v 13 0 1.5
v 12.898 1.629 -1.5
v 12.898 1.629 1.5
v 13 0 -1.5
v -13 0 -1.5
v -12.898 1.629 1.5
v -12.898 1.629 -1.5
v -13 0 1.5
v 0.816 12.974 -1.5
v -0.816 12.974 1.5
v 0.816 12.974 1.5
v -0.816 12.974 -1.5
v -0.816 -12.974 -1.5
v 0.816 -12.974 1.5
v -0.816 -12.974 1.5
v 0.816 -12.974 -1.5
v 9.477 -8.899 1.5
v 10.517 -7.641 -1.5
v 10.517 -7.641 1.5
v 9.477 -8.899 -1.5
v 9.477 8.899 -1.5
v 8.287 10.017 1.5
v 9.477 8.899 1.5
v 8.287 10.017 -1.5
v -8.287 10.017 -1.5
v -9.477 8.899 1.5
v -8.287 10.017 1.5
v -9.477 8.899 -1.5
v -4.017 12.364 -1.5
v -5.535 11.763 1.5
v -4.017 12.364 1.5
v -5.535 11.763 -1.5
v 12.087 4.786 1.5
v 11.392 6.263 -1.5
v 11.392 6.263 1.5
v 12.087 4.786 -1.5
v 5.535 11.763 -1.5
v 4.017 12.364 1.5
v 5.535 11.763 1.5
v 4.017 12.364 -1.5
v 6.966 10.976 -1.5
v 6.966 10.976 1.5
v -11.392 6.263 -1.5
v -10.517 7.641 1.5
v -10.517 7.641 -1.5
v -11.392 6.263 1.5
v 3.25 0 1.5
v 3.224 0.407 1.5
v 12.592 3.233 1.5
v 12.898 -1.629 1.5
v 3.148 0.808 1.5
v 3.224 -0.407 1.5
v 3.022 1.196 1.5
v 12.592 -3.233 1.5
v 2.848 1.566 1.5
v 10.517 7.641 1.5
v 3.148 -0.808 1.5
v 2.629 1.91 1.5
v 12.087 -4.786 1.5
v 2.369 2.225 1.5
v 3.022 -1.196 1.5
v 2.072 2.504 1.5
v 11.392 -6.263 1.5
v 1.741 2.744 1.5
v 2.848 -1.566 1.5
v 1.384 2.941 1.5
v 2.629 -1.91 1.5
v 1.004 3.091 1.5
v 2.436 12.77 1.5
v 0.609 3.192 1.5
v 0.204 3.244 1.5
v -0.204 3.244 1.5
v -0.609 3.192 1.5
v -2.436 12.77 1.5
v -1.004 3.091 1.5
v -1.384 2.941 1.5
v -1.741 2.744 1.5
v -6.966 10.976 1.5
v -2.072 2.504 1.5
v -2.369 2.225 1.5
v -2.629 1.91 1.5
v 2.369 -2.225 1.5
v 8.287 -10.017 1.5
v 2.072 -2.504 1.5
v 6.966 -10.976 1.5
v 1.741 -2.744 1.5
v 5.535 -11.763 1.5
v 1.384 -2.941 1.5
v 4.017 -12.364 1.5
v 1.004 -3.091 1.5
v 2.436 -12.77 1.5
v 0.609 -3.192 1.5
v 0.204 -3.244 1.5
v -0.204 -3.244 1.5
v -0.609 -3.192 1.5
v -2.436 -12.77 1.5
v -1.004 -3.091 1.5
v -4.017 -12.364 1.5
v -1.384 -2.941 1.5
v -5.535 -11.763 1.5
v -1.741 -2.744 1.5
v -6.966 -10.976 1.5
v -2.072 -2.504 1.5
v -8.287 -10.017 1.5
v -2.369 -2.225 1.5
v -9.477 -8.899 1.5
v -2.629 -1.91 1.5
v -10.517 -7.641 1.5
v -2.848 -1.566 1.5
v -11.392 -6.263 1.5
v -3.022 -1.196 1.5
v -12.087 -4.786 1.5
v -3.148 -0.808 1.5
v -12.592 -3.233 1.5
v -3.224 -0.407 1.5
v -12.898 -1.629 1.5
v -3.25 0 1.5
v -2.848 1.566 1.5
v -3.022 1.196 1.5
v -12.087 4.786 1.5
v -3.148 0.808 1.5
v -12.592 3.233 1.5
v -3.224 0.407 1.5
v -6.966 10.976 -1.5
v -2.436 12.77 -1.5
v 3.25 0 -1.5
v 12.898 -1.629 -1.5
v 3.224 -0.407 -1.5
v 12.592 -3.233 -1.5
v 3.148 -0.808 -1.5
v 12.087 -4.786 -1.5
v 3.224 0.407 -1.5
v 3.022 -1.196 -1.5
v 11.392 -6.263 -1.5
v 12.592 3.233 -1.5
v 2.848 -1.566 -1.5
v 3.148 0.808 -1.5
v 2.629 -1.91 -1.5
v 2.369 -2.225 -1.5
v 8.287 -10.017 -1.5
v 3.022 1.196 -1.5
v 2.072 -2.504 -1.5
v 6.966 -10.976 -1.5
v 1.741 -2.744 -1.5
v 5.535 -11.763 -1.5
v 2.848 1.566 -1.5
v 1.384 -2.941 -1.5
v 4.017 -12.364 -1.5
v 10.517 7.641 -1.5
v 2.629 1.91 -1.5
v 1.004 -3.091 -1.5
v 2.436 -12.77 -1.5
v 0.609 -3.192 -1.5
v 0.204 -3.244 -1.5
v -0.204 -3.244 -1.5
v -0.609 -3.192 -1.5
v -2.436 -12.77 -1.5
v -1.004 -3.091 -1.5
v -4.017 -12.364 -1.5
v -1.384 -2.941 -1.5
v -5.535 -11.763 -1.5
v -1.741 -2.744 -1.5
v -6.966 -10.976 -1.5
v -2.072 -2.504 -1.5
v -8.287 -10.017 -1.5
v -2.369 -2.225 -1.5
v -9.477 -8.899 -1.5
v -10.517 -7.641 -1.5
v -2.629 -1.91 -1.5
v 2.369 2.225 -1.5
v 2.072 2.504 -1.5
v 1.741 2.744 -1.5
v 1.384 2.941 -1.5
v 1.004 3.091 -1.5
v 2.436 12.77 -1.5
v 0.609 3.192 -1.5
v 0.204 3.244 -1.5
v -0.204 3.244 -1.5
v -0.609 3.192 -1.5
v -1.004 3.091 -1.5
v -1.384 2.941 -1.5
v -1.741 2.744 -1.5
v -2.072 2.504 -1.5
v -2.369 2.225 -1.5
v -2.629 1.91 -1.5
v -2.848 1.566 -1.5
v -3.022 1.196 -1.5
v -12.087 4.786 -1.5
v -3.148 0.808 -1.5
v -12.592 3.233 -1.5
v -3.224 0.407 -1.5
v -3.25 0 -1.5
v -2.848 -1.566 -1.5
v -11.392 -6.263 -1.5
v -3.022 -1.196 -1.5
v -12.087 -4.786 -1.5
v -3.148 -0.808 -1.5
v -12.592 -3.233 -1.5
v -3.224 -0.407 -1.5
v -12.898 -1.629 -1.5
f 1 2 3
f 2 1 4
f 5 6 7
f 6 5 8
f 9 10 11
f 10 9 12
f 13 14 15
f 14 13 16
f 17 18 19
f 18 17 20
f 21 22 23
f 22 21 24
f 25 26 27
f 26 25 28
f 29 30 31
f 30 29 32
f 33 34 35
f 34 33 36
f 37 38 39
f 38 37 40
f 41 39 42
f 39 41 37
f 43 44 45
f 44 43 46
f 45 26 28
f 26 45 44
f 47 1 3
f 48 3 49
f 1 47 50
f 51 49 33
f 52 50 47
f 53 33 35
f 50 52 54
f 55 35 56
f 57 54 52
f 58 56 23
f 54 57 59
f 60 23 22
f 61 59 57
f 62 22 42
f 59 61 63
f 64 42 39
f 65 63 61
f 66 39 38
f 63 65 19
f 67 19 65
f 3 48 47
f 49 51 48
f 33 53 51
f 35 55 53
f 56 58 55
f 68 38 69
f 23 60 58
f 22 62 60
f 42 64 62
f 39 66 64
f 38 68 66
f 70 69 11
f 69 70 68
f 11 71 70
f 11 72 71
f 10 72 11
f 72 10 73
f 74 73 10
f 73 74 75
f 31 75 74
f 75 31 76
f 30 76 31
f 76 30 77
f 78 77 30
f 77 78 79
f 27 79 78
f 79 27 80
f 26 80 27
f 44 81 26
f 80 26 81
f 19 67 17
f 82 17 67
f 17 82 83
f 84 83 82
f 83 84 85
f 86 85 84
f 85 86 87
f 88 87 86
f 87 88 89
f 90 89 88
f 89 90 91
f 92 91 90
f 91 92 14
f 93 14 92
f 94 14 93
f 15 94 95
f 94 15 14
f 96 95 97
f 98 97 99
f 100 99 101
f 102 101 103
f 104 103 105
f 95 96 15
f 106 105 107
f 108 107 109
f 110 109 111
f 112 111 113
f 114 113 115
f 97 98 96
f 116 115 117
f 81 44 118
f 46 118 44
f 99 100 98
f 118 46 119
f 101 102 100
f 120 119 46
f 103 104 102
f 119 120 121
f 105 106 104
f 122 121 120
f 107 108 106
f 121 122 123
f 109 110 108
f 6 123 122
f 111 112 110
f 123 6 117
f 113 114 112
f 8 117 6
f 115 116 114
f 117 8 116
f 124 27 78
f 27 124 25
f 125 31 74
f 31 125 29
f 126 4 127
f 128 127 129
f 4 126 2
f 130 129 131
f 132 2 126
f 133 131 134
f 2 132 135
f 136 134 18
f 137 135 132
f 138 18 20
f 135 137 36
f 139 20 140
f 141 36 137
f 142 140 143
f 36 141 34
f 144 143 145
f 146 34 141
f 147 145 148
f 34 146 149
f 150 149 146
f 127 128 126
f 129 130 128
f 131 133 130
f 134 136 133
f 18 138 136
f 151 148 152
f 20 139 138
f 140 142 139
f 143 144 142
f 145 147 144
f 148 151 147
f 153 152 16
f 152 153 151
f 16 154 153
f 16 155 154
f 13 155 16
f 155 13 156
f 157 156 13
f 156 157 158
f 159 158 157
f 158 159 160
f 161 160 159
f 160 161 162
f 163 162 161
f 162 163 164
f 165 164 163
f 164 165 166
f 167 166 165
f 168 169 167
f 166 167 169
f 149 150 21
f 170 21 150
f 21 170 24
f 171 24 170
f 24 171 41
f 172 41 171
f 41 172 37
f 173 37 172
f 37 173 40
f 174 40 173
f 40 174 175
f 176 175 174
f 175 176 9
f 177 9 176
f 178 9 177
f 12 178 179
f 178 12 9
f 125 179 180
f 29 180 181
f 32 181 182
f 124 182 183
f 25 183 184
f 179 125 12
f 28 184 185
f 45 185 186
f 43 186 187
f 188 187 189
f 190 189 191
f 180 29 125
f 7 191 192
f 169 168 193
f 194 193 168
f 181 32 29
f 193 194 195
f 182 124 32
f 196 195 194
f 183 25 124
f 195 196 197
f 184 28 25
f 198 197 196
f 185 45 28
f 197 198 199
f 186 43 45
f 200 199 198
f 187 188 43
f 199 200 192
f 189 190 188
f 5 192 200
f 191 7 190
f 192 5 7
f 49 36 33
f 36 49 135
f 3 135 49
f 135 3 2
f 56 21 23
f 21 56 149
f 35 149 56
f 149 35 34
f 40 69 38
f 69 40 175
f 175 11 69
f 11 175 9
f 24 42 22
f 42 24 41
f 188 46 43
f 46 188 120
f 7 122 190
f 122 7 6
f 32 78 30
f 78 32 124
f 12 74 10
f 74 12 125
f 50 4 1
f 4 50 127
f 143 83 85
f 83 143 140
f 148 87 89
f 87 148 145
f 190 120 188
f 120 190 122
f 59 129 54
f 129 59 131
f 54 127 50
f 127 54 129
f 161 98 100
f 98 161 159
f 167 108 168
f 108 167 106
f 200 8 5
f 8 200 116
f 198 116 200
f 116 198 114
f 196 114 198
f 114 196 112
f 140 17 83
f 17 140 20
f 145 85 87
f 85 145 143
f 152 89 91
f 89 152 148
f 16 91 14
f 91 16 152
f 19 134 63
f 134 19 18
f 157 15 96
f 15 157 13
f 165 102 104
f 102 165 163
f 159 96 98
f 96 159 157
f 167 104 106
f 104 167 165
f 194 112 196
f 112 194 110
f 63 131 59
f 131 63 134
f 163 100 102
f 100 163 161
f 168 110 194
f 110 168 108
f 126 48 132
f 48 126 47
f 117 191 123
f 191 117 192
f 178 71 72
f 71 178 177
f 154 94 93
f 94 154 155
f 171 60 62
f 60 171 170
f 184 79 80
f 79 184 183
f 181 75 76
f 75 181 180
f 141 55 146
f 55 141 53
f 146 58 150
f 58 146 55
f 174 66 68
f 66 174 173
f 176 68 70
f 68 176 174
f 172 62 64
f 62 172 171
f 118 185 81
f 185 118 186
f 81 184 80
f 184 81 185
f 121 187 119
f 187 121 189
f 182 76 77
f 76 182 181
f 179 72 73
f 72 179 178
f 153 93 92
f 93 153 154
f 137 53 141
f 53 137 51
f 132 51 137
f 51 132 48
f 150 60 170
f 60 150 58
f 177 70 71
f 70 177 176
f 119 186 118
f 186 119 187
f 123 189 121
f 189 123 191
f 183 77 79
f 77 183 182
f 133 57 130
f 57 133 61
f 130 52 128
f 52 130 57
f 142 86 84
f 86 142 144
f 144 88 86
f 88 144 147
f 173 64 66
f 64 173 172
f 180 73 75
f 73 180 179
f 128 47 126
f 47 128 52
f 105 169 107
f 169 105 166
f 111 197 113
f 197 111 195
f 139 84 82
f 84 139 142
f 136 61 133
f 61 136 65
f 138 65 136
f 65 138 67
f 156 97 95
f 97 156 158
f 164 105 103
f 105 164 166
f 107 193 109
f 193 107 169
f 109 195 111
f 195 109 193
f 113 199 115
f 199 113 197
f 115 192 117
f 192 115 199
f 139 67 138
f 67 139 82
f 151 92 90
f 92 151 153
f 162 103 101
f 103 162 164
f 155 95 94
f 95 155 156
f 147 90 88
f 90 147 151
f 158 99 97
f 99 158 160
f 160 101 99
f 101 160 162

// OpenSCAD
$fn = 50;


difference() {
	union() {
		translate(v = [0, 0, -1.5000000000]) {
			cylinder(h = 3, r = 13.0000000000);
		}
	}
	union() {
		translate(v = [0, 0, -100.0000000000]) {
			cylinder(h = 200, r = 3.2500000000);
		}
	}
}
